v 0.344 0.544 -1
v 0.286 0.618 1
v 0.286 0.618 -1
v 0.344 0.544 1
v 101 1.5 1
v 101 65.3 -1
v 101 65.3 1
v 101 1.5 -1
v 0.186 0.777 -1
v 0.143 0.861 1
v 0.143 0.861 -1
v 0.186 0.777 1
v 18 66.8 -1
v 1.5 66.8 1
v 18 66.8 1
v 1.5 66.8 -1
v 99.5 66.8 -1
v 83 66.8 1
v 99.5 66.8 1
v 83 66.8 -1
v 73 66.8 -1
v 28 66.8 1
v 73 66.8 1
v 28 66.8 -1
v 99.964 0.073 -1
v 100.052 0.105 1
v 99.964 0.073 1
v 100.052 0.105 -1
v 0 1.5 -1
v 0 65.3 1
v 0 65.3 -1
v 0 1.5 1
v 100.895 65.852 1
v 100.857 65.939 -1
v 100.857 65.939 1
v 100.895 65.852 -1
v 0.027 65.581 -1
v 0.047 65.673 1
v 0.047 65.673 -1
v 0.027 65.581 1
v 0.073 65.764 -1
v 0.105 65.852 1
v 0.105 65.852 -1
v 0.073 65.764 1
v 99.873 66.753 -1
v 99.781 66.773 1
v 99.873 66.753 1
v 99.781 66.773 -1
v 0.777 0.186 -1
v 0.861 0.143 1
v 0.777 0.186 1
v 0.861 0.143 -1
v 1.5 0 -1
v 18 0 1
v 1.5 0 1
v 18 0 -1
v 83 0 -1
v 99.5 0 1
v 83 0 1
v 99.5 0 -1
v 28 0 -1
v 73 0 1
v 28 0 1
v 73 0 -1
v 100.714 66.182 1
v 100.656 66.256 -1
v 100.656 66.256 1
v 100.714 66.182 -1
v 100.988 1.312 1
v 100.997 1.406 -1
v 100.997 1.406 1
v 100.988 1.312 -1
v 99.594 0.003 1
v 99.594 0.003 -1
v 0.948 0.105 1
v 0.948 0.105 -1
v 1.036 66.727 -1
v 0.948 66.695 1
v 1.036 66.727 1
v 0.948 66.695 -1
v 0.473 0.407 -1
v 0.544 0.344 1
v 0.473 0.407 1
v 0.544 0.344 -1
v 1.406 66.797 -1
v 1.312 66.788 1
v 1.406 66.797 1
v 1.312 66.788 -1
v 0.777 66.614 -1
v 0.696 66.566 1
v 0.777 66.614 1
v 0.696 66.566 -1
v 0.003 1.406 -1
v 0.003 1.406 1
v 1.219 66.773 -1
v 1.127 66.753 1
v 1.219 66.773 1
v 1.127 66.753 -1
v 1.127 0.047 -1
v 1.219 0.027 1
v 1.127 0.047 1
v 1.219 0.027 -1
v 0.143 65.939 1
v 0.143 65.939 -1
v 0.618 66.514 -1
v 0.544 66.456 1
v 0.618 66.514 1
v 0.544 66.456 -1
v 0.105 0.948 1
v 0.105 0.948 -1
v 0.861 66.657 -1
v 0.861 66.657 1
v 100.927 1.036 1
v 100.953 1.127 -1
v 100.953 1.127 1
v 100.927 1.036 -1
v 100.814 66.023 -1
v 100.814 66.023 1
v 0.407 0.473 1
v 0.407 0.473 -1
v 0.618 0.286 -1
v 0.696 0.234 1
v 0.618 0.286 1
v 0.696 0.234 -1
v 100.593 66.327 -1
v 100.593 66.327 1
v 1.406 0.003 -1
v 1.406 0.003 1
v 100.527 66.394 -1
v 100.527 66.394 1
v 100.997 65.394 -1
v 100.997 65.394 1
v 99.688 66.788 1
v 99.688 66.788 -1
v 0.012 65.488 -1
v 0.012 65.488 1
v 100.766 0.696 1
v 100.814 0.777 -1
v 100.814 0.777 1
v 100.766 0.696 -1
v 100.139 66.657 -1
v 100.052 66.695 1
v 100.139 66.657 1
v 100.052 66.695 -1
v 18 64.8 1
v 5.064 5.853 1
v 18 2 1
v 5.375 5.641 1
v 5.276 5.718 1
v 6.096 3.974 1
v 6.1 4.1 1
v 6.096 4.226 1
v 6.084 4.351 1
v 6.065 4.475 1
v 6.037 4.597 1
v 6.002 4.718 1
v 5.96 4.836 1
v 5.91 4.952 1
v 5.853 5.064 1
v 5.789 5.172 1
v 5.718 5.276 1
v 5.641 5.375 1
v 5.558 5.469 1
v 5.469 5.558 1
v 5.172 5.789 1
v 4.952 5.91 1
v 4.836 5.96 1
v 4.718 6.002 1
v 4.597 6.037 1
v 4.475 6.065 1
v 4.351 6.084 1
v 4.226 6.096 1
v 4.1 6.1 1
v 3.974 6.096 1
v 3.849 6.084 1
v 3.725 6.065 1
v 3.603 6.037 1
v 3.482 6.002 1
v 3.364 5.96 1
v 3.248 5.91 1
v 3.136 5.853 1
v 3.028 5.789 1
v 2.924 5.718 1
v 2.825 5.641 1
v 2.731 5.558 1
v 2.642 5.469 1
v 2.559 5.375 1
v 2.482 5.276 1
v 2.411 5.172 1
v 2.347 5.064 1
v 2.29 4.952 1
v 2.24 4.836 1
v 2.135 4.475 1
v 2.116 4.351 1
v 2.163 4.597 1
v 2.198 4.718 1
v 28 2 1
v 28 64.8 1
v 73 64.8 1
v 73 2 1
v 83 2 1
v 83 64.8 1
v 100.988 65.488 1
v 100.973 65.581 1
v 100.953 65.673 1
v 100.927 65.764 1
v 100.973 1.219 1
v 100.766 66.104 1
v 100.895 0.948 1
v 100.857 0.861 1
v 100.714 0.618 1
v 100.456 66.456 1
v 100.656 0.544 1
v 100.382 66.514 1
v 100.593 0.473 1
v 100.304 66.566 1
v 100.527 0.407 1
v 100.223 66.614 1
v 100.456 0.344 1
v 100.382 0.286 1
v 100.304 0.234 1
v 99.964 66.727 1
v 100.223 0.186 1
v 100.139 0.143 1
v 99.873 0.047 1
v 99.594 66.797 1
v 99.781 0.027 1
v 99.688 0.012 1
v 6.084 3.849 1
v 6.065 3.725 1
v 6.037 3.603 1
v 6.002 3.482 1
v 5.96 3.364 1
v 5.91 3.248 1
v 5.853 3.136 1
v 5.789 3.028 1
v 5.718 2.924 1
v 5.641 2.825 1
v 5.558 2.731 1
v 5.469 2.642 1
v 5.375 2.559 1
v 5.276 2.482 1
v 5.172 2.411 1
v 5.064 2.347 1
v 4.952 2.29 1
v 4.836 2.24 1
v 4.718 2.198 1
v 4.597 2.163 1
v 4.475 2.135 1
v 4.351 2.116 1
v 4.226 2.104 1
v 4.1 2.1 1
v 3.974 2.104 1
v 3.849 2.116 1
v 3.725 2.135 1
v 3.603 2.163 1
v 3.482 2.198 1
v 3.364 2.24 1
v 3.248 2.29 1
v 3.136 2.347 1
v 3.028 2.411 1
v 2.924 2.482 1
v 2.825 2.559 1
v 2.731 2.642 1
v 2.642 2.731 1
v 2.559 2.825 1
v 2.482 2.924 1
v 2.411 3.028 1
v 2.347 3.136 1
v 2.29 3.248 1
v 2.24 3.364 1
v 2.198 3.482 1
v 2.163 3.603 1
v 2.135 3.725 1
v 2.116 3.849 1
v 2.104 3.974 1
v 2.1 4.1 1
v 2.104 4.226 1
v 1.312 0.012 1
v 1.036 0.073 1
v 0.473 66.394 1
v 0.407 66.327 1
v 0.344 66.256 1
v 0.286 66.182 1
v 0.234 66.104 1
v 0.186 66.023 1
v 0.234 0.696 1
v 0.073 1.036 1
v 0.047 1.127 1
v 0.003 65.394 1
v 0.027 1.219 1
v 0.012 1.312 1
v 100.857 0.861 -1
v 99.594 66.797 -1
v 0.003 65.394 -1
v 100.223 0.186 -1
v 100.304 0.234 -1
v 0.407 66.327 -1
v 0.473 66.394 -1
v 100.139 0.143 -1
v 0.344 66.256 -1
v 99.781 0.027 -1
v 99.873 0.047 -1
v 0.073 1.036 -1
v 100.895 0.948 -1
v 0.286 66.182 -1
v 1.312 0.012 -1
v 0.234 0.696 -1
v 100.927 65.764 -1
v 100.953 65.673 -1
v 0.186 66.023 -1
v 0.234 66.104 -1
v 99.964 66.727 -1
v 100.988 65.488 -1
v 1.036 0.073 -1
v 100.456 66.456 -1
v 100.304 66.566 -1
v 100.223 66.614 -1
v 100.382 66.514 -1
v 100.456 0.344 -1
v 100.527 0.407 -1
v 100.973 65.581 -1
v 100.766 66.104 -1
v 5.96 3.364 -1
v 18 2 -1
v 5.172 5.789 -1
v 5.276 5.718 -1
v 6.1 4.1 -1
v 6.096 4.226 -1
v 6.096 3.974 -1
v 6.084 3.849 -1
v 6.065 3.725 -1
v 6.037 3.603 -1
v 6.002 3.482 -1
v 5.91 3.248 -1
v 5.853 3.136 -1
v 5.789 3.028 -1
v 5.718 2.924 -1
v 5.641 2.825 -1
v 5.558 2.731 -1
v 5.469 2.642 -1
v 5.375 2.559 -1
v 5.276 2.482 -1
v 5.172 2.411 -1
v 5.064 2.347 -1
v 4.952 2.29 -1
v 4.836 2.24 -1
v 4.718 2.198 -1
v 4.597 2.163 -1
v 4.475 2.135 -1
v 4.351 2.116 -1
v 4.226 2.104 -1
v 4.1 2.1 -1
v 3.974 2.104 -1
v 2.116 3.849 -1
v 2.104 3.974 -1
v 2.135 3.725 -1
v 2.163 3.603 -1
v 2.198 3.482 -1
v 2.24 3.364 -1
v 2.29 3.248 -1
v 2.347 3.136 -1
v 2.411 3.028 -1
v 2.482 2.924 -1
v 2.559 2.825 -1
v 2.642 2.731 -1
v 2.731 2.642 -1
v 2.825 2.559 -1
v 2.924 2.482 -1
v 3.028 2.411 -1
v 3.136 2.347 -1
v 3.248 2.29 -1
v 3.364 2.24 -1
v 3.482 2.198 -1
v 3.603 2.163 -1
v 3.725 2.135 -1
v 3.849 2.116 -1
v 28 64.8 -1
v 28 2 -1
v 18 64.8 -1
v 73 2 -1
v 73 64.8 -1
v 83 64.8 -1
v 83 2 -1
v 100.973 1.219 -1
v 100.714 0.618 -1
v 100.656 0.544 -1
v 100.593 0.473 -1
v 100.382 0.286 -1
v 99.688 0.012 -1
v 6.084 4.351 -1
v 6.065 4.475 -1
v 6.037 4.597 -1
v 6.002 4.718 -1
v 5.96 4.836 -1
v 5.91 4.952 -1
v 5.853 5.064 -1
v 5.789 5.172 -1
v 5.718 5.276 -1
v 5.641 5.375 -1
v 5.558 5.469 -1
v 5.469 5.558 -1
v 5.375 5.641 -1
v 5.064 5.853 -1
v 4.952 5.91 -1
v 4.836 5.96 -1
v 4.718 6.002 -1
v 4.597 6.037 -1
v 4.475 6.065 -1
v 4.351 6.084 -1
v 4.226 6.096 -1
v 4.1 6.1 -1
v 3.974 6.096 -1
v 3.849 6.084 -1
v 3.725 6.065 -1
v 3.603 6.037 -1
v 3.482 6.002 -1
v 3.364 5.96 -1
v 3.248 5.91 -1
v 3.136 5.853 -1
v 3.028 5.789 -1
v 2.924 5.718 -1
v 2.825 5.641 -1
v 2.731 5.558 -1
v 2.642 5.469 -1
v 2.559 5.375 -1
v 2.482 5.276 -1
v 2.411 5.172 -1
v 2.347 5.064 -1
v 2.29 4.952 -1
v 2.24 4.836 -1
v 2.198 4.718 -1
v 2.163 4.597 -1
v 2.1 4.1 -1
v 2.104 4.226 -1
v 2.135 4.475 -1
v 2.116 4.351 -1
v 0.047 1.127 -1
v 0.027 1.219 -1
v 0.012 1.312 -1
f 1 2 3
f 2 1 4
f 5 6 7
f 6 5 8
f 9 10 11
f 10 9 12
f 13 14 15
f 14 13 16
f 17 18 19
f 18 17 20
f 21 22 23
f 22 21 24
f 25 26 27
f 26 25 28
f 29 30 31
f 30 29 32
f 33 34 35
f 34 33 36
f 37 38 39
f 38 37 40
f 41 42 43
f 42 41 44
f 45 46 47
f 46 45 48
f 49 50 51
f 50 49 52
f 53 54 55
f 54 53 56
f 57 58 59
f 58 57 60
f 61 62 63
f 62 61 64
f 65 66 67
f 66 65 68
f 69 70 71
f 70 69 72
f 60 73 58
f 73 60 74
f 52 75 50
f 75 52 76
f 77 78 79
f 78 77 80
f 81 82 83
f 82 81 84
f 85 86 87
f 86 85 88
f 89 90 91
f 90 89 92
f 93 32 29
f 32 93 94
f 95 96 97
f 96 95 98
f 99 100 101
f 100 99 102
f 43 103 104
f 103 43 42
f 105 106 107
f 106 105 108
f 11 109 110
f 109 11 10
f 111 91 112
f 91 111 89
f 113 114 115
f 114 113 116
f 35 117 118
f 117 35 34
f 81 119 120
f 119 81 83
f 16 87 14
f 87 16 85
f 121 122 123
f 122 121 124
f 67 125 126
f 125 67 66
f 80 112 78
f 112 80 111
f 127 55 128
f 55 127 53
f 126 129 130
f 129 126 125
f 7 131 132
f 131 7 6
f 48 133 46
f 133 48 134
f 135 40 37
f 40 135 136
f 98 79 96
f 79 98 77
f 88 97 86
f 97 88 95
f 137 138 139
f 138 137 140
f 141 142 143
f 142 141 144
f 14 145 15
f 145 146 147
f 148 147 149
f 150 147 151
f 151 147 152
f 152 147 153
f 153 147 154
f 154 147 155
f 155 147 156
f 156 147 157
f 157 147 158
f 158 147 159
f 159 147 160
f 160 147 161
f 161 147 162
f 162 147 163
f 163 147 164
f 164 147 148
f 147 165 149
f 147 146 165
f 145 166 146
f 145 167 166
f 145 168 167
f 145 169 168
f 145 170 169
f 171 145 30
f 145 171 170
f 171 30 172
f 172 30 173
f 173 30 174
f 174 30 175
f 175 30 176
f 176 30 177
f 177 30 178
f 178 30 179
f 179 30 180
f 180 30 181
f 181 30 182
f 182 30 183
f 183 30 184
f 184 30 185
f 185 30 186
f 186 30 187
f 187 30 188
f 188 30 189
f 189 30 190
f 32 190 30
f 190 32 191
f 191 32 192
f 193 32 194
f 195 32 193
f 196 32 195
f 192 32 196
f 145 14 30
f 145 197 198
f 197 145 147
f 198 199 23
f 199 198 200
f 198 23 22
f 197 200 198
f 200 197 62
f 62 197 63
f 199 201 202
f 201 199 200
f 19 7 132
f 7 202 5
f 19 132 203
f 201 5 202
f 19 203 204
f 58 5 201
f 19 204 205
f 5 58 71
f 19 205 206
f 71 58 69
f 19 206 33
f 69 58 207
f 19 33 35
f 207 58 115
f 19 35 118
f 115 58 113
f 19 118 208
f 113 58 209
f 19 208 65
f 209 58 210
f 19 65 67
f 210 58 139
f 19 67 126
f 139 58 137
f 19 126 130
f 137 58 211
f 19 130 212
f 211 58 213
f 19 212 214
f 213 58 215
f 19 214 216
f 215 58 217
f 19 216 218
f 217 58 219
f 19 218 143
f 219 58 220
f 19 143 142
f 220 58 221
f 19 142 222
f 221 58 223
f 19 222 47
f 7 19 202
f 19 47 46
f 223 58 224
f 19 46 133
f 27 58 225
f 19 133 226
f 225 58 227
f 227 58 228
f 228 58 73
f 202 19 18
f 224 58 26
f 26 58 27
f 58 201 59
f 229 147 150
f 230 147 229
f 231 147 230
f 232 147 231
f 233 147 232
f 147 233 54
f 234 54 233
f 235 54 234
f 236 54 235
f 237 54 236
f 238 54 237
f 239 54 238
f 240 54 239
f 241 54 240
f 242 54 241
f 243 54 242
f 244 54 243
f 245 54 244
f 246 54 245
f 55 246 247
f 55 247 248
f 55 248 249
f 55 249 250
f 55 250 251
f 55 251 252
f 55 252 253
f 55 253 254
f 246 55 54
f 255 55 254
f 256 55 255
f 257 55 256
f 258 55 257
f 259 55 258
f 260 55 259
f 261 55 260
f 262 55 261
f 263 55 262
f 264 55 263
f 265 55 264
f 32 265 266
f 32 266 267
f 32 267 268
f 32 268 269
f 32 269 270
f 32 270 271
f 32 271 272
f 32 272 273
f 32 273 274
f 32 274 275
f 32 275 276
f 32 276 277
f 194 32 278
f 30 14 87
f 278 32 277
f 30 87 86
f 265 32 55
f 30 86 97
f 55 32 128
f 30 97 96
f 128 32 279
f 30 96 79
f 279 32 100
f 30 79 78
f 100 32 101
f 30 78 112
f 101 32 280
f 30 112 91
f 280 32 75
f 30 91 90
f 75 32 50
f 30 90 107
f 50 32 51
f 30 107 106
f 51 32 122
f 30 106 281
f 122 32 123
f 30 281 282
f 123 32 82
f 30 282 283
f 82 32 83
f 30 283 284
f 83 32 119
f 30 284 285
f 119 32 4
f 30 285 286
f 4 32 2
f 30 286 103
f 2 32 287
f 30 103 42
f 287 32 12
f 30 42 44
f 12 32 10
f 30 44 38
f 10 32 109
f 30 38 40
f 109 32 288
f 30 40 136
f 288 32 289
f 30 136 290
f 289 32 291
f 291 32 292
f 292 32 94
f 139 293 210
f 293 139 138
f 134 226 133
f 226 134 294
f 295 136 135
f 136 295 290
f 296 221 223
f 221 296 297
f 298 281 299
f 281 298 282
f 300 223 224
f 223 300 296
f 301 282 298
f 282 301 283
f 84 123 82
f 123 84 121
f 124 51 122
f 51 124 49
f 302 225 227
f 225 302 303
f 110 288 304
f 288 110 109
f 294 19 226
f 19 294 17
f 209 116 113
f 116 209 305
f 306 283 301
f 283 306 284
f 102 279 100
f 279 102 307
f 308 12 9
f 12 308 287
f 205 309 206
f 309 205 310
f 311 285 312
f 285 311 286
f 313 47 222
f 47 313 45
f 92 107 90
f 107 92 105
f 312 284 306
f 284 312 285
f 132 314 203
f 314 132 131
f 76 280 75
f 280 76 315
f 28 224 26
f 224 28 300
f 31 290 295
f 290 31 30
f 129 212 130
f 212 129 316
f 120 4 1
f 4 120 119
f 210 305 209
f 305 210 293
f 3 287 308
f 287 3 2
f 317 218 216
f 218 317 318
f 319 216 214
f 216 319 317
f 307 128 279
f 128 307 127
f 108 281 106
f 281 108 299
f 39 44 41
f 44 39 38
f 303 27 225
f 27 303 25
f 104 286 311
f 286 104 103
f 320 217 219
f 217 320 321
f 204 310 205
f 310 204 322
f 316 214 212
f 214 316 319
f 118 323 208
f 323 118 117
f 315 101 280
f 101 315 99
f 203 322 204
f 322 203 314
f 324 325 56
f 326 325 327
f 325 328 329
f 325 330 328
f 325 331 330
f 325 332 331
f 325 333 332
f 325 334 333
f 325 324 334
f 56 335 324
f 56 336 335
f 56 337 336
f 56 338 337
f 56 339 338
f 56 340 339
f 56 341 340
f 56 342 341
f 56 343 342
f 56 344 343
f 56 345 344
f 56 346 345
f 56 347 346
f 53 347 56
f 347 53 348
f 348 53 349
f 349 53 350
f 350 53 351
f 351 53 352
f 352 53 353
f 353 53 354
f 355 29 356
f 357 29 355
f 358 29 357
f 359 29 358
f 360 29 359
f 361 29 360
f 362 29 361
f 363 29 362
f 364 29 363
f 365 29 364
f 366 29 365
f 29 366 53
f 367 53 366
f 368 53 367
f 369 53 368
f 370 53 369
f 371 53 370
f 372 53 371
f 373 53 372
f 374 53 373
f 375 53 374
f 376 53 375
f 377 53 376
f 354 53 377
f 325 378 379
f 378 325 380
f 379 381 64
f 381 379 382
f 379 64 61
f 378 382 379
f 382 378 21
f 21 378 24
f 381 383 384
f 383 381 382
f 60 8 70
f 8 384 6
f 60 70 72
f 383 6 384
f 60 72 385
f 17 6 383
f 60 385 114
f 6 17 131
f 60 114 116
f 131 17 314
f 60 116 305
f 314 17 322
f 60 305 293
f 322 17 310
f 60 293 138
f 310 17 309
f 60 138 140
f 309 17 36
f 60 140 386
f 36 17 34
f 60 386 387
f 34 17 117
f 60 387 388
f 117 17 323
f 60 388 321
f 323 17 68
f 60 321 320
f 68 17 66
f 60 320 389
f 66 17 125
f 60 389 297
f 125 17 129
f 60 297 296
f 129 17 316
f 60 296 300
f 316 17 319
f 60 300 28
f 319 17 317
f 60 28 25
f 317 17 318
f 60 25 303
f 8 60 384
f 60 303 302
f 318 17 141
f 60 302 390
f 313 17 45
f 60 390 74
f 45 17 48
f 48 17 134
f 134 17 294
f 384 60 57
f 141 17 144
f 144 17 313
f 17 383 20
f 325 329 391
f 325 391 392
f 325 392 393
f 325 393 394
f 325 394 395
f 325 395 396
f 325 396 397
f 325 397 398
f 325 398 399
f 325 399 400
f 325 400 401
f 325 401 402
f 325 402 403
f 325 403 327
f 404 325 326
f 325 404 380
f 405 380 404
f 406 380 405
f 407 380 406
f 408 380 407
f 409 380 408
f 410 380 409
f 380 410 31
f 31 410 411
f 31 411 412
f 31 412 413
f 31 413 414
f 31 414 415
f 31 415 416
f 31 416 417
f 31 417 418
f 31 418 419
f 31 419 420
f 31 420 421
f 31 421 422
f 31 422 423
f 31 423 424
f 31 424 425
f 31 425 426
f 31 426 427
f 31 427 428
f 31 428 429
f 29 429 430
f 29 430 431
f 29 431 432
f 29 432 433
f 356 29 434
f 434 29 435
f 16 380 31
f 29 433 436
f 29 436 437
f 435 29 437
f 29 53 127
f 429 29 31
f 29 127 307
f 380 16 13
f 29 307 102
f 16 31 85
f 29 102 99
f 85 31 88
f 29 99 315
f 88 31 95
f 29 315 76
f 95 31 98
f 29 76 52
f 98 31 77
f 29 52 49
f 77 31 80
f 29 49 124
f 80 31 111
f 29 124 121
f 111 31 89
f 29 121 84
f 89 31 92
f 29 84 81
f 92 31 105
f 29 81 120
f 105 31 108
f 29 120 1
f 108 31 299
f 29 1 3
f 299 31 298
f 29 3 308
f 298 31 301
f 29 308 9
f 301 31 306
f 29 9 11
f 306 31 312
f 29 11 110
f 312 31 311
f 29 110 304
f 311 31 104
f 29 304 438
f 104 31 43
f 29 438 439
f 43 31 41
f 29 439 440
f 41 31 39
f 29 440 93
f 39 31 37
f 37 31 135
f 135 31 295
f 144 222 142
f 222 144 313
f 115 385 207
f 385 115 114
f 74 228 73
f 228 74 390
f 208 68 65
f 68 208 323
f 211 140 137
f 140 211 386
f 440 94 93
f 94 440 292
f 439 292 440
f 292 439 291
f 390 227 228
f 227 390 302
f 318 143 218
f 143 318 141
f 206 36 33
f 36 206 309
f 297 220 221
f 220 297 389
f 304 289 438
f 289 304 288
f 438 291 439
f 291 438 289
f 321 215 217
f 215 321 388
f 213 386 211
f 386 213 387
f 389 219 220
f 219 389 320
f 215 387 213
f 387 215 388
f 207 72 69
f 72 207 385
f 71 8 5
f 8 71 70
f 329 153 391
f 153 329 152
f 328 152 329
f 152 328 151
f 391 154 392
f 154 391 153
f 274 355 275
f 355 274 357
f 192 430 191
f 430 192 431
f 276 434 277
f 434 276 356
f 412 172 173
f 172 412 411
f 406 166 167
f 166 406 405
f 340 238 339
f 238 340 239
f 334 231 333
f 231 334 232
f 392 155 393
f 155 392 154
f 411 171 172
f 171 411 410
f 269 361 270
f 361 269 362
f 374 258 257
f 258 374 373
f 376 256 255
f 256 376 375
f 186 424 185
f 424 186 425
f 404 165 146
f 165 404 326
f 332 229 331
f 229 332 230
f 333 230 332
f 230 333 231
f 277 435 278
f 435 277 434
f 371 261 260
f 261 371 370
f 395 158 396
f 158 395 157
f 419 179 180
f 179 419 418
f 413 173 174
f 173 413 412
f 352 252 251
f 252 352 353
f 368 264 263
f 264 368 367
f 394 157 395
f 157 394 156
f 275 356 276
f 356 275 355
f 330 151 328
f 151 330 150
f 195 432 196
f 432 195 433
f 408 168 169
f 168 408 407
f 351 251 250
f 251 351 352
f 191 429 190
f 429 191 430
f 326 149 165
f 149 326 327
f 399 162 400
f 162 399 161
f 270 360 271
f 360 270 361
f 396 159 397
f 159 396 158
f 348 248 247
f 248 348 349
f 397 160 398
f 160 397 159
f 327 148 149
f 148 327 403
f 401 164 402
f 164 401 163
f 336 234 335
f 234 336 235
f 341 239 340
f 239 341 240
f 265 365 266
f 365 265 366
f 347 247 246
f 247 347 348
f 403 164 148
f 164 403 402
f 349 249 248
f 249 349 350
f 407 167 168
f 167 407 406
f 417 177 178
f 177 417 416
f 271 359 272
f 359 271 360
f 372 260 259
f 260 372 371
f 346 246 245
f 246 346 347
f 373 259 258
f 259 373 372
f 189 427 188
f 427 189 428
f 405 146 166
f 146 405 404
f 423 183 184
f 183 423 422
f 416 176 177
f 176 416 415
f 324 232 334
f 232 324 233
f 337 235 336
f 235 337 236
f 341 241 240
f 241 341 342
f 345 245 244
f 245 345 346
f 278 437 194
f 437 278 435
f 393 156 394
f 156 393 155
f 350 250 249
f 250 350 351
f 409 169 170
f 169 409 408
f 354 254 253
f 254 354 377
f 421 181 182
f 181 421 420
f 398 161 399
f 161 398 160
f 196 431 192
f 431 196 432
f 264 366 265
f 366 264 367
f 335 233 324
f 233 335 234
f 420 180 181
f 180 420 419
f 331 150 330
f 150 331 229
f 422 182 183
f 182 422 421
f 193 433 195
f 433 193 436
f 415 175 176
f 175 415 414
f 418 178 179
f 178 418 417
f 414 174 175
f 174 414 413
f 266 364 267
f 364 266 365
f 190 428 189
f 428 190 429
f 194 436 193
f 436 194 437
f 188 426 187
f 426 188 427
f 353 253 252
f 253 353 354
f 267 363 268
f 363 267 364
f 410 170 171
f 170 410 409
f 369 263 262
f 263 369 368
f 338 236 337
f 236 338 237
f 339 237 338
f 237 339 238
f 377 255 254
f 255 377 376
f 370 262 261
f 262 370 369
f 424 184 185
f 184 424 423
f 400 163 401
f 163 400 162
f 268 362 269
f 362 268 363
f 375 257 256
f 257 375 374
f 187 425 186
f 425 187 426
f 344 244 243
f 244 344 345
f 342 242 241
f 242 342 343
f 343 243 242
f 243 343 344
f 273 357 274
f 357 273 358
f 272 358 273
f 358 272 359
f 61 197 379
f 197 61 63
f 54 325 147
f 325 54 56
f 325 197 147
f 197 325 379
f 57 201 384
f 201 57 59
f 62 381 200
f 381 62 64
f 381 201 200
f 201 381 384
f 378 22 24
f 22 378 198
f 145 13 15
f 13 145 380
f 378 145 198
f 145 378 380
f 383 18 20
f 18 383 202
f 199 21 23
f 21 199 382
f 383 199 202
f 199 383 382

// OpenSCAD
$fn=100;
screwX=91.5;
screwY=56.5;
screwD=4;

//inside of midleton wooden box with double doors
totHeight = 2 ;
totWidth = 101 ;
totDepth = 66.8 ;
dimensions = [ totWidth, totDepth, totHeight] ;
wiggle = [0, 0, 0] ;
volume = dimensions + wiggle ;
*cube(volume);
// Corner strength
cornerD = 3 ;
Blob=[cornerD,cornerD,volume.z];
DIM = volume ;

FL = [0, 0, 0] ;
FR = [DIM.x - Blob.x, 0, 0] ;
BR = [DIM.x - Blob.x, DIM.y -Blob.y, 0] ;
BL = [0, DIM.y -Blob.y, 0] ;

// List of corners
Corners = [FL,FR,BL,BR];

difference() {
	translate([Blob.x/2,Blob.y/2,0]) hull() {
		for (corner = Corners) {
			echo(corner);
			translate(corner) cylinder(h=DIM.z,d=Blob.x,center=true);
		}
	}
	translate([4.1,4.1,0]) cylinder(h=DIM.z+.1,d=screwD,center=true);
    notchW=10;
    notchOFF=18;
    translate ([notchOFF + (notchW/2), 0, 0]) cube([notchW, 2*2, DIM.z + .1], center=true);
    translate ([DIM.x - notchOFF - (notchW/2), 0, 0]) cube([notchW, 2*2, DIM.z + .1], center=true);
    translate ([notchOFF + (notchW/2), DIM.y, 0]) cube([notchW, 2*2, DIM.z + .1], center=true);
    translate ([DIM.x - notchOFF - (notchW/2), DIM.y, 0]) cube([notchW, 2*2, DIM.z + .1], center=true);


}
